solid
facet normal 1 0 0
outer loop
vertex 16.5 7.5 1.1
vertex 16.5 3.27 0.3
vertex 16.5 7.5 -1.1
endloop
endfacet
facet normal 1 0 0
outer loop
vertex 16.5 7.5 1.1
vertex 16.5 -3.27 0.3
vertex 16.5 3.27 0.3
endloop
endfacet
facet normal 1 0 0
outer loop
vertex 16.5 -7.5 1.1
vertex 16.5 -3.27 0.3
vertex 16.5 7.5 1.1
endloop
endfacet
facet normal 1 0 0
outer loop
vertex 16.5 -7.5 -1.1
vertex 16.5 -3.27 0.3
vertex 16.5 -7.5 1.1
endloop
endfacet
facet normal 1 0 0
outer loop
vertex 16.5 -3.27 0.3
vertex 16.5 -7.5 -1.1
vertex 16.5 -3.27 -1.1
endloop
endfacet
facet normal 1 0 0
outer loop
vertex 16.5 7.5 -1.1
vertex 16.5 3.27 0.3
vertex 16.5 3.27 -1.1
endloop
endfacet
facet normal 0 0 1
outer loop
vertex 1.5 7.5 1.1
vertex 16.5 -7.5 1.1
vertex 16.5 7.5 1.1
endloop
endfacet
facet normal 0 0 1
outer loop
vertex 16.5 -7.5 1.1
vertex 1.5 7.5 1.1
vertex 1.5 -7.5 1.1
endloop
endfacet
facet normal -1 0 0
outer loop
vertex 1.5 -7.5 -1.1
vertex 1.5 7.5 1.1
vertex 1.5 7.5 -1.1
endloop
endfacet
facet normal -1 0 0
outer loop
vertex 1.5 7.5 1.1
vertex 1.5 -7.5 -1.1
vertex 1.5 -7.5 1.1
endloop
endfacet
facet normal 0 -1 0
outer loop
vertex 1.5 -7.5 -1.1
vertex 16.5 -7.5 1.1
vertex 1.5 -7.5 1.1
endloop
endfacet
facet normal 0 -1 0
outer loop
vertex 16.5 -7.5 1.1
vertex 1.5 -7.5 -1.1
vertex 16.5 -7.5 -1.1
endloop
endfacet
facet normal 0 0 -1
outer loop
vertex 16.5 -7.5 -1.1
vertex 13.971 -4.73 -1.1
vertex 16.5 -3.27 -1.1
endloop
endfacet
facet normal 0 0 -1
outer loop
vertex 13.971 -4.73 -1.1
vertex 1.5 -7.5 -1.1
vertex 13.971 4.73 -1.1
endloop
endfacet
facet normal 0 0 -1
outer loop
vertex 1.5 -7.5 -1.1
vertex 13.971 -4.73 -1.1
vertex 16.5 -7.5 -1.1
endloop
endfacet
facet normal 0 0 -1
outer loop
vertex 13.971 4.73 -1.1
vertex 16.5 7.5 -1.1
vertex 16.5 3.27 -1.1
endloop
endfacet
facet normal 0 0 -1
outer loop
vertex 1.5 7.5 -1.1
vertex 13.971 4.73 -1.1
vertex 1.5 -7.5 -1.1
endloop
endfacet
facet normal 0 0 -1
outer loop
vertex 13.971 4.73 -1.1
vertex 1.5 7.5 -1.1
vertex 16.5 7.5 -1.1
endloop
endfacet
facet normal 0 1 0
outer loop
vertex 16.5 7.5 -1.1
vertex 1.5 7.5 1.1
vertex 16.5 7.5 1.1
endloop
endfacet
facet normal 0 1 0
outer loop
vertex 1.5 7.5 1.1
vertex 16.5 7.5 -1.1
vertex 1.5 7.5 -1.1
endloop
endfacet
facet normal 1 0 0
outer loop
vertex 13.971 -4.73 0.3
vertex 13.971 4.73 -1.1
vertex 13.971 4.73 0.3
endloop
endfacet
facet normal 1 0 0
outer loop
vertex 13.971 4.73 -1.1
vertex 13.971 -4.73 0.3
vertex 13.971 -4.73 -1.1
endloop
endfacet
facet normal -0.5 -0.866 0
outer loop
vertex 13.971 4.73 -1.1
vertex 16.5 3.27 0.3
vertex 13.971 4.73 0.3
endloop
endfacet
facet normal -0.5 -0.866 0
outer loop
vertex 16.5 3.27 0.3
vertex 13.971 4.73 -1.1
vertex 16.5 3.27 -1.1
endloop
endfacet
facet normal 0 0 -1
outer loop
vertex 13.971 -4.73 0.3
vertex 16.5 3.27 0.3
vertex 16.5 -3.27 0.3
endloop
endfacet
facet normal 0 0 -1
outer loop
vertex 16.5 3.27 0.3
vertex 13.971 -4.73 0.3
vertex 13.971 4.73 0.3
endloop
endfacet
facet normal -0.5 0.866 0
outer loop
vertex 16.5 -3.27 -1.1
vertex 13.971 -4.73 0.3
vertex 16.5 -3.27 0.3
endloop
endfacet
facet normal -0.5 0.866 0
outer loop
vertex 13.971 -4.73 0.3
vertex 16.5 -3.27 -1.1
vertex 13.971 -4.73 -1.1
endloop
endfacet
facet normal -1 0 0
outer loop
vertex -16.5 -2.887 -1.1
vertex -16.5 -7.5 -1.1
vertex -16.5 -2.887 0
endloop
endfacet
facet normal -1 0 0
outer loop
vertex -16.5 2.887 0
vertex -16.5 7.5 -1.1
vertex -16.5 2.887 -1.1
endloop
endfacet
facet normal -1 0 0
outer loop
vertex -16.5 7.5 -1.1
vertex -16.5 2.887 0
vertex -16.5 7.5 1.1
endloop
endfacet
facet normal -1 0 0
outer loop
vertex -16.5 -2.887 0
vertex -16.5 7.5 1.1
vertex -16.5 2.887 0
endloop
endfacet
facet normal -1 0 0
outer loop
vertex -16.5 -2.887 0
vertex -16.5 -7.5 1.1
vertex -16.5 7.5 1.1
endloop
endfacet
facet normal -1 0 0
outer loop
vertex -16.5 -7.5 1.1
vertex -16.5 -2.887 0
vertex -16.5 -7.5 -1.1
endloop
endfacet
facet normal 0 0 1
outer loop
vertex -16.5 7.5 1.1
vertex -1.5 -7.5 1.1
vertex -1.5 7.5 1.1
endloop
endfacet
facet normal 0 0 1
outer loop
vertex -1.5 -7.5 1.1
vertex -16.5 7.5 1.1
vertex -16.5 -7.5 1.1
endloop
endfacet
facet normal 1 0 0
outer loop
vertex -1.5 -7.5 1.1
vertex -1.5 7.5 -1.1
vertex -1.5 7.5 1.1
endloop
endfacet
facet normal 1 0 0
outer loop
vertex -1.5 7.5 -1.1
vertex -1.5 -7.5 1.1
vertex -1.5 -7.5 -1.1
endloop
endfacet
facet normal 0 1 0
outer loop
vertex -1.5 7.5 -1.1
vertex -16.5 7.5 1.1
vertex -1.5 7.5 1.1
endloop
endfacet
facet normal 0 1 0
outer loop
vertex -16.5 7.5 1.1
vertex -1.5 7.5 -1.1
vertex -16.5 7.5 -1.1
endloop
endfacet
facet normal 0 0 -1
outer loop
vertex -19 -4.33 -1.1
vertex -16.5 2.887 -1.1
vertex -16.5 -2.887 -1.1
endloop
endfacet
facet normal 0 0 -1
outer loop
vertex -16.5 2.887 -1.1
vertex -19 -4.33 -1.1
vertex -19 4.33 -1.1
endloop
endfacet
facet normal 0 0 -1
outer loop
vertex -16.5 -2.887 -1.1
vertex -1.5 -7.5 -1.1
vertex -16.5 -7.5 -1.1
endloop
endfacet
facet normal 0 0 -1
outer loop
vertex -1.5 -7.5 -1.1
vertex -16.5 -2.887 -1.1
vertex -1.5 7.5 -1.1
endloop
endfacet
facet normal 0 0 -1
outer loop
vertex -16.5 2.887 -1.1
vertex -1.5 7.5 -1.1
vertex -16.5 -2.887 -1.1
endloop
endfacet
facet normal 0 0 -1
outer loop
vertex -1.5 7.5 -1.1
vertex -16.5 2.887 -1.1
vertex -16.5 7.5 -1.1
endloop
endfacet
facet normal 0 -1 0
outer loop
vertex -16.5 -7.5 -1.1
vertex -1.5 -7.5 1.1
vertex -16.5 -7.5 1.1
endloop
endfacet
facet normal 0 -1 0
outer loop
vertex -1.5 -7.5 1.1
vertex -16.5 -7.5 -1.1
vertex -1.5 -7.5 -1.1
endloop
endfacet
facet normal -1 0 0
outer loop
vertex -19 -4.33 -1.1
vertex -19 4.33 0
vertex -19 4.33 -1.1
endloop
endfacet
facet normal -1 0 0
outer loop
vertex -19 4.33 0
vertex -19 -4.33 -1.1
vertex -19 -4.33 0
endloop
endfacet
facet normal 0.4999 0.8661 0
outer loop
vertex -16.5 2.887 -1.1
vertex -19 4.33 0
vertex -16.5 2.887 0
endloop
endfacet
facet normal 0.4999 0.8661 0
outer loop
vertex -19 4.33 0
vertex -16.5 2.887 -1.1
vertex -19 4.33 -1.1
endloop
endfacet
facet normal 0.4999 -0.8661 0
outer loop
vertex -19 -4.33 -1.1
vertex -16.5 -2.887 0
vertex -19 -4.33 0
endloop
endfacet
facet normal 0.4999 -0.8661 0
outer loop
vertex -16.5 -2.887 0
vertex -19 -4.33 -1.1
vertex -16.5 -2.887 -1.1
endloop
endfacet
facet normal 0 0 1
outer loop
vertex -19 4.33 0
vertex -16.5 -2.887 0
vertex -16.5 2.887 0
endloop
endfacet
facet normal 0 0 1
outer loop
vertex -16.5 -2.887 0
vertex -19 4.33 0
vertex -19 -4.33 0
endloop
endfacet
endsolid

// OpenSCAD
side=90;
//thickness of the board
thick=2.2;
edge_thick=3;
//coefficient of the thickness of the board
edge_height_coef=1.5;//[1:0.1:3]

//printer tolerance (only affect "color 02" parts)
tolerance=0.2;//[0:0.05:0.7]
//definition (only affect corners)
$fn=60;
render="Test part";//[Corner color 01,Corner color 02,Edge color 01,Edge color 02,Center color 01,Center color 02,Test part]

////////
module slot() {
translate([-side/2,0,-thick/2-0.2]) rotate([0,0,180]) translate([0.2,0,0]) hull() {for(i=[-1,1]) translate([-0.5-2*tolerance/1.75,i*(0.866+2*tolerance),0]) cylinder(d=8,h=thick/2+0.5,$fn=3);}
}
module couleur01(a) {
    cube([side,side,thick],center=true);
    for(i=[0,90]) rotate([0,0,i])
    translate([-side/2,0,-thick/2]) cylinder(d=10,h=thick/2,$fn=3);
    if (a==2) {
        for(i=[0,-90]) rotate([0,0,i])
        translate([-side/2,side/2,-thick/2]) cube([side,edge_thick,edge_height_coef*thick]);
        difference() {
            translate([side/2,side/2,-thick/2]) cylinder(r=edge_thick,h=edge_height_coef*thick);
            cube([side,side,2*edge_height_coef*thick],center=true);
        }
    }
    if (a==3) {
        rotate([0,0,180])
        translate([-side/2,0,-thick/2]) cylinder(d=10,h=thick/2,$fn=3);
        translate([-side/2,side/2,-thick/2]) cube([side,edge_thick,edge_height_coef*thick]);
    }
    else if (a==4) {
        for(i=[180,-90]) rotate([0,0,i])
        translate([-side/2,0,-thick/2]) cylinder(d=10,h=thick/2,$fn=3);
    }
    else {};
}

module couleur02(a) {
    difference() {
        cube([side,side,thick],center=true);
        for(i=[0,90]) rotate([0,0,i])
        slot();
        if (a==3) {
            rotate([0,0,180]) slot();
        }
        else if (a==4) {
            for(i=[180,-90]) rotate([0,0,i]) slot();
        }
        else {};
    }
    if (a==2) {
        for(i=[0,-90]) rotate([0,0,i])
        translate([-side/2,side/2,-thick/2]) cube([side,edge_thick,edge_height_coef*thick]);
        difference() {
            translate([side/2,side/2,-thick/2]) cylinder(r=edge_thick,h=edge_height_coef*thick);
            cube([side,side,2*edge_height_coef*thick],center=true);
        }
    }
    if (a==3) {
        translate([-side/2,side/2,-thick/2]) cube([side,edge_thick,edge_height_coef*thick]);
    }
}

if (render=="Corner color 01") {
    couleur01(2);
}
else if (render=="Corner color 02") {
    couleur02(2);
}
else if (render=="Edge color 01") {
    couleur01(3);
}
else if (render=="Edge color 02") {
    couleur02(3);
}
else if (render=="Center color 01") {
    couleur01(4);
}
else if (render=="Center color 02") {
    couleur02(4);
}
else if (render=="Test part") {
    rotate([0,0,180]) translate([-1.5,0,0]) difference() {
        translate([-7.5,0,0]) cube([15,15,thick],center=true);
        translate([-30/2,0,-thick/2-0.2]) rotate([0,0,180]) translate([0.2,0,0]) hull() {for(i=[-1,1]) translate([-0.5-2*tolerance/1.75,i*(0.866+2*tolerance),0]) cylinder(d=8,h=thick/2+0.5,$fn=3);}
    }
    translate([-1.5,0,0]) union() {
        translate([-7.5,0,0]) cube([15,15,thick],center=true);
        translate([-30/2,0,-thick/2]) cylinder(d=10,h=thick/2,$fn=3);
    }
}
